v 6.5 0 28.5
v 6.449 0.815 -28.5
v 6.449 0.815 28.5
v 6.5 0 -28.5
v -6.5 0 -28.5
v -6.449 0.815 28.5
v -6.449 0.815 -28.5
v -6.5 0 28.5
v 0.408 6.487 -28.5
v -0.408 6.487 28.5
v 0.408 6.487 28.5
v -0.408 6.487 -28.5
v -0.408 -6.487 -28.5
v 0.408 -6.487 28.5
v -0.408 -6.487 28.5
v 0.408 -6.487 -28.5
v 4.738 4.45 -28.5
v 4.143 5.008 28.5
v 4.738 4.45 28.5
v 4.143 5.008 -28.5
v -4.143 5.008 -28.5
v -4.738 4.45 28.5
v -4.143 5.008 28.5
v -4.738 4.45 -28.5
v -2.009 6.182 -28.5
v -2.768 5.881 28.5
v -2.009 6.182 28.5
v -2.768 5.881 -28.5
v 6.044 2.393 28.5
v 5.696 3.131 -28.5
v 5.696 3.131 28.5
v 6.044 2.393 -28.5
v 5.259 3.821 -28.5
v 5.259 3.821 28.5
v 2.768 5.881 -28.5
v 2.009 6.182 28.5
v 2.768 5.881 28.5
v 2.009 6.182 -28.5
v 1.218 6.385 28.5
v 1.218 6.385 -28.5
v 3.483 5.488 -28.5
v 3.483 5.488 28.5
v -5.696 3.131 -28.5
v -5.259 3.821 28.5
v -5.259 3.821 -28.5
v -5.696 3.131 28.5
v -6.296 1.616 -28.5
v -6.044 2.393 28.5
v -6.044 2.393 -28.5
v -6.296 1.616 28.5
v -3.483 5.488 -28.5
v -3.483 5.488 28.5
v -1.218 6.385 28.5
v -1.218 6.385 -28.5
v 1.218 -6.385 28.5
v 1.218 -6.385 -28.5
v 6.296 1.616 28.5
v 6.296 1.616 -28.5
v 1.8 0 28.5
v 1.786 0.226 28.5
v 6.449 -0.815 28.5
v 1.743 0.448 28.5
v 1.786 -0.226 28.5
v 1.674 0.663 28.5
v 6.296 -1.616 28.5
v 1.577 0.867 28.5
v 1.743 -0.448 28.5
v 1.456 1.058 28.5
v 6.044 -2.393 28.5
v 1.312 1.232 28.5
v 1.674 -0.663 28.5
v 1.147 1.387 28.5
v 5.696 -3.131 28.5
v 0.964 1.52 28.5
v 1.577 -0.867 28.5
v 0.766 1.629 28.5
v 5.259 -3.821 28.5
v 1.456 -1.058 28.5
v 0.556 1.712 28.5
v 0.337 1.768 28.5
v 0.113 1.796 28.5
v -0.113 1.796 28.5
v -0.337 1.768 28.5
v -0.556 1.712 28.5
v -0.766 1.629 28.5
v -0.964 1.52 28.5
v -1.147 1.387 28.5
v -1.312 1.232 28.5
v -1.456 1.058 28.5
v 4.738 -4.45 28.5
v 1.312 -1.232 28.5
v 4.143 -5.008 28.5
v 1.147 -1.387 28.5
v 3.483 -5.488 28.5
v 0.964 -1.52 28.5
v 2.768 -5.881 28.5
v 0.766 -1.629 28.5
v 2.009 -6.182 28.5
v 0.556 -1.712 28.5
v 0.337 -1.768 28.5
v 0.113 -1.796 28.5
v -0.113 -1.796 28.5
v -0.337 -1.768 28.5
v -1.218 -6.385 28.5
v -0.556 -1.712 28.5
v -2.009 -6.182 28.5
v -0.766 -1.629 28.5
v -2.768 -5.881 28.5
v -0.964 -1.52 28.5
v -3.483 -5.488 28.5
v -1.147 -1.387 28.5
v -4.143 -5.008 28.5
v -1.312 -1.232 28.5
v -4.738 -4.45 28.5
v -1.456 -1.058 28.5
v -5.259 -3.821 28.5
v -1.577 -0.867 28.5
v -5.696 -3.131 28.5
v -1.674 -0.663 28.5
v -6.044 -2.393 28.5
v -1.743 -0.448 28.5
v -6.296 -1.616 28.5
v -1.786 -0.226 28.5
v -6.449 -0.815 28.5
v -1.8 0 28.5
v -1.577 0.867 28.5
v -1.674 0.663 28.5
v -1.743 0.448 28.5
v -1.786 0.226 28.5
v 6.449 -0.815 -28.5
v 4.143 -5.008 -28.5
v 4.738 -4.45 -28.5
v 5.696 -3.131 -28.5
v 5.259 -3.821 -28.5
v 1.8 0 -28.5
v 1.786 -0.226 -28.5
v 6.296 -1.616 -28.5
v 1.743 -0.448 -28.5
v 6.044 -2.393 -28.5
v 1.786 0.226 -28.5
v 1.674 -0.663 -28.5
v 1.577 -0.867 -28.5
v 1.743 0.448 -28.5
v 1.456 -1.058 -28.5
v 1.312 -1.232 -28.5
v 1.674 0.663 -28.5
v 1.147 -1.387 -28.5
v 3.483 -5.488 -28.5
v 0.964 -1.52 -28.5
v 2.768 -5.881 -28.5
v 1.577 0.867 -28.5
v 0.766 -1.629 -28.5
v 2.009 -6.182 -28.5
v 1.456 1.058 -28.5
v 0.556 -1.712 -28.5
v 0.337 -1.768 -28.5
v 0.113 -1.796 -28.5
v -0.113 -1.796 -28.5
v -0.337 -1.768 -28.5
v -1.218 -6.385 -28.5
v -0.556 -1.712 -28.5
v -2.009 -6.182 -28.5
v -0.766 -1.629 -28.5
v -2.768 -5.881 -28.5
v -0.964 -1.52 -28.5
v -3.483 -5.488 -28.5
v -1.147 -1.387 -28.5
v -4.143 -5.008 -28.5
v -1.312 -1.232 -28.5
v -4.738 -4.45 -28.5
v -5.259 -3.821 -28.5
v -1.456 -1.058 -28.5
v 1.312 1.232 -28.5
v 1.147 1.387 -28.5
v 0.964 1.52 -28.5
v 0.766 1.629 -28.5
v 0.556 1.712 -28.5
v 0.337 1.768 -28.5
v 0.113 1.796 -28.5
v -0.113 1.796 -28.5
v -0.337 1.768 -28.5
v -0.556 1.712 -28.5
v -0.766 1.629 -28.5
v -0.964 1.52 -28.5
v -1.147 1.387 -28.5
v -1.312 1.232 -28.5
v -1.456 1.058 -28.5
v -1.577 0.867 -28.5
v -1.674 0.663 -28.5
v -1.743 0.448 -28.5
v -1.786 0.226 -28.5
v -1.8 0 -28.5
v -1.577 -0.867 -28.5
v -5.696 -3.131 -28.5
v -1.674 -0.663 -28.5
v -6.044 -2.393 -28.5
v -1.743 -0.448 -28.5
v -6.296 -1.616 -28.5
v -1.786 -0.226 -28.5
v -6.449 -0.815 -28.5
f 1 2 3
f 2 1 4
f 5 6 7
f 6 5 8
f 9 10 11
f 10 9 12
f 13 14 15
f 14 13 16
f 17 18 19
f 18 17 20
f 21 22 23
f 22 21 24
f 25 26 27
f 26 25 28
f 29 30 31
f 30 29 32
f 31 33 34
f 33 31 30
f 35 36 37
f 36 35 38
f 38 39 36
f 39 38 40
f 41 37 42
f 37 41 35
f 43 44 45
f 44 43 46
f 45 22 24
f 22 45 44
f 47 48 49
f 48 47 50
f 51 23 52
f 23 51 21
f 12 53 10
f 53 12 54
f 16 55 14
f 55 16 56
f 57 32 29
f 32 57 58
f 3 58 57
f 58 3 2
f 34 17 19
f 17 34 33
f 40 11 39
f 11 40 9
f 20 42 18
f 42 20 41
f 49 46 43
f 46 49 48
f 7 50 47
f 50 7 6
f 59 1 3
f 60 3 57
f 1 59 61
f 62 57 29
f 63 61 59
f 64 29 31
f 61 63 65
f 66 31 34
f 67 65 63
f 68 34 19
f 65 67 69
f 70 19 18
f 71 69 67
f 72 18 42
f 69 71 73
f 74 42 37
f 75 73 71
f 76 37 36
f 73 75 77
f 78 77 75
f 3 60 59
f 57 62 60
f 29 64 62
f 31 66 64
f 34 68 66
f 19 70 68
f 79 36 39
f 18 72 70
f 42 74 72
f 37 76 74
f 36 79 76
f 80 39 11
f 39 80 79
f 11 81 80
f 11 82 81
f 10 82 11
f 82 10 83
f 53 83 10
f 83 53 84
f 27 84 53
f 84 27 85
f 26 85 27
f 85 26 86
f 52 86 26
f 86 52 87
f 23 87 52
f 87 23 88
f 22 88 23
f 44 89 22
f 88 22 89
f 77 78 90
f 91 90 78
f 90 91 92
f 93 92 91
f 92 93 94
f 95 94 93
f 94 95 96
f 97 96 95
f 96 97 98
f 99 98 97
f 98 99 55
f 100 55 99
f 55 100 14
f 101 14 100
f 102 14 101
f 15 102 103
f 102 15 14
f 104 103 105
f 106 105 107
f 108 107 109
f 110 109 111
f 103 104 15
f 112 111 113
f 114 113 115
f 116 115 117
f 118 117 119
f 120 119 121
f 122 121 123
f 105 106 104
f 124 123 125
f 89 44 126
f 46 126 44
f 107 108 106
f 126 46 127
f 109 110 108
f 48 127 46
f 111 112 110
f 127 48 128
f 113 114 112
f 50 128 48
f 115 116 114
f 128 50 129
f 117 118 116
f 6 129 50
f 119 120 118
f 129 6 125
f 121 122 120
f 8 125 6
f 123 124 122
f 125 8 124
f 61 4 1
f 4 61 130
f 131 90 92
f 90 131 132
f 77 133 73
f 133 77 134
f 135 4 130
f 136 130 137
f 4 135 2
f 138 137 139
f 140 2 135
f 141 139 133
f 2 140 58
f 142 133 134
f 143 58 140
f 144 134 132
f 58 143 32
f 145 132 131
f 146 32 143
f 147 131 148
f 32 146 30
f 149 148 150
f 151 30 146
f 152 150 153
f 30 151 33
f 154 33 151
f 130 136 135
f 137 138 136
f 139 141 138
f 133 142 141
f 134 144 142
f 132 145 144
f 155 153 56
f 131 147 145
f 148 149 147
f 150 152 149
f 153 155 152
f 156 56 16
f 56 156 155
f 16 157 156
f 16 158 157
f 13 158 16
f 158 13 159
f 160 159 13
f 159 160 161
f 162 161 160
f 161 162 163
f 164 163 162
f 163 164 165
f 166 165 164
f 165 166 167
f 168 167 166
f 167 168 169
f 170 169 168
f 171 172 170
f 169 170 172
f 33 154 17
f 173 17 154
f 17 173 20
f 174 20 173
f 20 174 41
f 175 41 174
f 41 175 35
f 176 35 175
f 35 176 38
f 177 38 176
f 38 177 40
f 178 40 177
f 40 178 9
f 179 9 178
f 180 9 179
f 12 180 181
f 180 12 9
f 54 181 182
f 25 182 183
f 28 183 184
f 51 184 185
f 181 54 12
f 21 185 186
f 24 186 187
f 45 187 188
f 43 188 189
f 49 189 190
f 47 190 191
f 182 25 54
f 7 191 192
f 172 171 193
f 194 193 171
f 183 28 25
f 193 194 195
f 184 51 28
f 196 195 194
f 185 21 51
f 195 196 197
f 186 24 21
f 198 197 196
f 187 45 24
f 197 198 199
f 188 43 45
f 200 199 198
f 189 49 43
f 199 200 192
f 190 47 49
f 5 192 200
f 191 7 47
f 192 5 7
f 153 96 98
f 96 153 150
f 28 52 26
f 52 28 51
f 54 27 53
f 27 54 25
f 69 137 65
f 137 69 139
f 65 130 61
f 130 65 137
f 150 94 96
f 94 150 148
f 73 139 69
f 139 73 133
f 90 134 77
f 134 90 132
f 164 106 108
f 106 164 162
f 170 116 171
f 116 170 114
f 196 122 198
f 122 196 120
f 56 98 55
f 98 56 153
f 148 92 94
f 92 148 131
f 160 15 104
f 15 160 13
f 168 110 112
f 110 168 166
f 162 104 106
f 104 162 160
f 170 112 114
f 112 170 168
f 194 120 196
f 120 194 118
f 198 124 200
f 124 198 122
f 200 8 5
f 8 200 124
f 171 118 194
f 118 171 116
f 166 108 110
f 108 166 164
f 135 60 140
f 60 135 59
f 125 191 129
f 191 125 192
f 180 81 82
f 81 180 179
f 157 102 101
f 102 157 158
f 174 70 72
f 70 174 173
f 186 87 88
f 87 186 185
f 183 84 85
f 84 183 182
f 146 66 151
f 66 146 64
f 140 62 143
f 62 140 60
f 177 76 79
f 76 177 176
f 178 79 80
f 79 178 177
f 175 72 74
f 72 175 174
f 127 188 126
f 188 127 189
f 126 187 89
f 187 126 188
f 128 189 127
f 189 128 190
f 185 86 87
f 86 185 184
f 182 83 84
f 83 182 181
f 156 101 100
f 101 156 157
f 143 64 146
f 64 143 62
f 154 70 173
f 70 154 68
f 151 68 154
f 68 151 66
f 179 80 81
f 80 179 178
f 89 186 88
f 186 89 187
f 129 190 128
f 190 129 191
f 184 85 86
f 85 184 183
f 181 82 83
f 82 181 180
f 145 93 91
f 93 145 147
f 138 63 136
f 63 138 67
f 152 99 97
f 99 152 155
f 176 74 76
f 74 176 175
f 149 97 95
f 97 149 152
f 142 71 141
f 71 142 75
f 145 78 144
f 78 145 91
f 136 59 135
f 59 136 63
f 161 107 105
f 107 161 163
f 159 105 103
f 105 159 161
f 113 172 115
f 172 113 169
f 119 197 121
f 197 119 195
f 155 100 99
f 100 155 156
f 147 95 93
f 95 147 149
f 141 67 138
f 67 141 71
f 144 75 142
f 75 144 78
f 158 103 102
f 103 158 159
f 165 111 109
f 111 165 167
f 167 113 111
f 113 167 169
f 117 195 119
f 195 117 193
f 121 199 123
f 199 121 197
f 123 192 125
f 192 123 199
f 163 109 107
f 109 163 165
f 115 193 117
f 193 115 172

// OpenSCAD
$fn = 50;


difference() {
	union() {
		translate(v = [0, 0, -28.5000000000]) {
			cylinder(h = 57, r = 6.5000000000);
		}
	}
	union() {
		translate(v = [0, 0, -100.0000000000]) {
			cylinder(h = 200, r = 1.8000000000);
		}
	}
}
